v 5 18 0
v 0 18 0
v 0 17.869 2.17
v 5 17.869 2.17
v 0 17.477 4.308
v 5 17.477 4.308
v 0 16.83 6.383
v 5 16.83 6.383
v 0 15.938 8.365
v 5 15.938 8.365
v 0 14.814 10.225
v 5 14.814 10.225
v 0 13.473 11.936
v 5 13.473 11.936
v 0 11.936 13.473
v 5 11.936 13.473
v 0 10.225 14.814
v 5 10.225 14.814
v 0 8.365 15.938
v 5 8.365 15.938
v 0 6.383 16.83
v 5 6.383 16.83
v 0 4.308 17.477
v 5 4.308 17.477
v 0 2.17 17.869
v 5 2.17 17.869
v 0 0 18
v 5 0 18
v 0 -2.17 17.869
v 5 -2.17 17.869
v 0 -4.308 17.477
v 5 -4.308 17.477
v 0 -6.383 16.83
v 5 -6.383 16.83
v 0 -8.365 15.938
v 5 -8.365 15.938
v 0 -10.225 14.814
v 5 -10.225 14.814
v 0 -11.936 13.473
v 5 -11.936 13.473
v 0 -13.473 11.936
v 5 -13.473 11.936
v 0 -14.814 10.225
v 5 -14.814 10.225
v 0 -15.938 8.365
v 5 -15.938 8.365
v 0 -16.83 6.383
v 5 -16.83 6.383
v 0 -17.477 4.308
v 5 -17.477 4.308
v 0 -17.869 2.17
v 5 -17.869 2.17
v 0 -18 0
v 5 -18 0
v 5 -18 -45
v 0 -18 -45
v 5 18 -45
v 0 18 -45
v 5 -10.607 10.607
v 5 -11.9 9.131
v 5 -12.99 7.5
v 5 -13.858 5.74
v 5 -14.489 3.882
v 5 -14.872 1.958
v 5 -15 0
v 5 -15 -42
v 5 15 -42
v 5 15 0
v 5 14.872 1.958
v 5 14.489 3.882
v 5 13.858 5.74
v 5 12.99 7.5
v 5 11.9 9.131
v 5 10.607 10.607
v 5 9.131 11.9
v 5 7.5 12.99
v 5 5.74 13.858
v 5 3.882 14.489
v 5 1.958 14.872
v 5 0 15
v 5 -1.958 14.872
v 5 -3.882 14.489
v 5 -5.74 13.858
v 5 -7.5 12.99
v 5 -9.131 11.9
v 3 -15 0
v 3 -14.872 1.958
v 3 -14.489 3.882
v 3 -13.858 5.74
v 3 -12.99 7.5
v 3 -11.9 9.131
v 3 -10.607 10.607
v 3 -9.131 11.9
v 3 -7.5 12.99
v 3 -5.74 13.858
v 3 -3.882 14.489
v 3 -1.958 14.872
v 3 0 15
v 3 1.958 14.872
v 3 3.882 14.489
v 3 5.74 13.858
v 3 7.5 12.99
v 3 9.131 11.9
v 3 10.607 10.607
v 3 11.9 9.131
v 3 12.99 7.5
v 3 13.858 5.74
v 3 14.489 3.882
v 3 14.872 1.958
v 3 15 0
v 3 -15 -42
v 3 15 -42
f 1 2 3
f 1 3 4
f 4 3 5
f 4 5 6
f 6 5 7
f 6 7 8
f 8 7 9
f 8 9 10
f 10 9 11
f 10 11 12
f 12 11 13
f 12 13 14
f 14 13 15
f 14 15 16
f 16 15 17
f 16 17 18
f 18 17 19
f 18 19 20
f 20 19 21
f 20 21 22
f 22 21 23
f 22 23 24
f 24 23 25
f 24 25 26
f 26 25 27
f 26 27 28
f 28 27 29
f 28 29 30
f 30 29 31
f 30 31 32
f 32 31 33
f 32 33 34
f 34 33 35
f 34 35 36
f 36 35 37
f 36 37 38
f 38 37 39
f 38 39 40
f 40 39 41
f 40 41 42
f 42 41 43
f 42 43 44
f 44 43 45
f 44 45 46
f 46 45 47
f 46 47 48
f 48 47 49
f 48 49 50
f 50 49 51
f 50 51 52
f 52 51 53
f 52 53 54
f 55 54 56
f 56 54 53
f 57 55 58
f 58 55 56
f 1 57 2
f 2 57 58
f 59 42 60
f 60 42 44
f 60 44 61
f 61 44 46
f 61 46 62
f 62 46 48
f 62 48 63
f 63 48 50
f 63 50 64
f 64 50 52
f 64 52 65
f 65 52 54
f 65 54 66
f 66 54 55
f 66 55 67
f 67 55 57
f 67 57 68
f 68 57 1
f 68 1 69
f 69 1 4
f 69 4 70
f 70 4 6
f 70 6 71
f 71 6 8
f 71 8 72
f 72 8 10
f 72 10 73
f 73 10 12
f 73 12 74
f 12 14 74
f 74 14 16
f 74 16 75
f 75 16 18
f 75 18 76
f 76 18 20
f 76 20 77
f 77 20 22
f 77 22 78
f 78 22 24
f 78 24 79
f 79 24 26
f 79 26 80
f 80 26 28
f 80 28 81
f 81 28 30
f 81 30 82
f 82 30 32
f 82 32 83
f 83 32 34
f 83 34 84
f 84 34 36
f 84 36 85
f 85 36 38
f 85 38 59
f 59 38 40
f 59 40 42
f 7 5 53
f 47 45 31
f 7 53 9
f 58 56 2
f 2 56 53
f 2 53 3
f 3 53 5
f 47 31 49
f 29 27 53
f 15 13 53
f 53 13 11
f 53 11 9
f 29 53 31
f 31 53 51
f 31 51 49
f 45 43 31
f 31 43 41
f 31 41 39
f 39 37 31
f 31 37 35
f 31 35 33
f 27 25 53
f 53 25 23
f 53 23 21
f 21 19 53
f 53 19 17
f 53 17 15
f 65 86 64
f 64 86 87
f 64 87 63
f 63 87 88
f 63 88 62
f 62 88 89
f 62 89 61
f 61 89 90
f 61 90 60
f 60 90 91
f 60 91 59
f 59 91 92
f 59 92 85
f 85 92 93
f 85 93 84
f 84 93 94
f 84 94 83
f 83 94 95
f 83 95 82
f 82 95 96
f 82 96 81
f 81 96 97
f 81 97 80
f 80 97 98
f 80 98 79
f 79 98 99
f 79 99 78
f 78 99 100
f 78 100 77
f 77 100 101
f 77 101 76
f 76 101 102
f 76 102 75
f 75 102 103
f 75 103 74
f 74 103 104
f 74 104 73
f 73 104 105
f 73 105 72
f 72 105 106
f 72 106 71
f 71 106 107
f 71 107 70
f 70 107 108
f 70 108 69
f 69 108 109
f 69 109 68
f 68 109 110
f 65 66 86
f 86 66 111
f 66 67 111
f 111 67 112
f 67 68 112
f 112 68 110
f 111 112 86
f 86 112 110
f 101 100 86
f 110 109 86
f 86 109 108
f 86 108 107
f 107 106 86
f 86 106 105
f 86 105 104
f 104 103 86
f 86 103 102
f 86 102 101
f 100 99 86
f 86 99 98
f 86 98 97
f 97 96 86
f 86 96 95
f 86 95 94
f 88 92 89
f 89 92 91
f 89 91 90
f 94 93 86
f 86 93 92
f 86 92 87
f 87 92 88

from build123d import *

# Parameters (mm, degrees)
BOSS_EXTRUDE1_DEPTH = 5
SHELL1_T            = -3


with BuildPart() as part:
    # Sketch1 → Boss-Extrude1 (new body)
    with BuildSketch(Plane(origin=(0, 0, 0), x_dir=(0, 0, -1), z_dir=(1, 0, 0))):
        with BuildLine():
            Line((0, 18), (45, 18))
            Line((45, 18), (45, -18))
            Line((45, -18), (0, -18))
            ThreePointArc((0, -18), (-18, 0), (0, 18))
        make_face()
    extrude(amount=BOSS_EXTRUDE1_DEPTH)

    # Shell1
    shell1_openings = [part.faces().sort_by_distance(p)[0] for p in [
        (5, 0, -15.294949805),
    ]]
    offset(amount=SHELL1_T, openings=shell1_openings, kind=Kind.INTERSECTION)


solid = part.part
